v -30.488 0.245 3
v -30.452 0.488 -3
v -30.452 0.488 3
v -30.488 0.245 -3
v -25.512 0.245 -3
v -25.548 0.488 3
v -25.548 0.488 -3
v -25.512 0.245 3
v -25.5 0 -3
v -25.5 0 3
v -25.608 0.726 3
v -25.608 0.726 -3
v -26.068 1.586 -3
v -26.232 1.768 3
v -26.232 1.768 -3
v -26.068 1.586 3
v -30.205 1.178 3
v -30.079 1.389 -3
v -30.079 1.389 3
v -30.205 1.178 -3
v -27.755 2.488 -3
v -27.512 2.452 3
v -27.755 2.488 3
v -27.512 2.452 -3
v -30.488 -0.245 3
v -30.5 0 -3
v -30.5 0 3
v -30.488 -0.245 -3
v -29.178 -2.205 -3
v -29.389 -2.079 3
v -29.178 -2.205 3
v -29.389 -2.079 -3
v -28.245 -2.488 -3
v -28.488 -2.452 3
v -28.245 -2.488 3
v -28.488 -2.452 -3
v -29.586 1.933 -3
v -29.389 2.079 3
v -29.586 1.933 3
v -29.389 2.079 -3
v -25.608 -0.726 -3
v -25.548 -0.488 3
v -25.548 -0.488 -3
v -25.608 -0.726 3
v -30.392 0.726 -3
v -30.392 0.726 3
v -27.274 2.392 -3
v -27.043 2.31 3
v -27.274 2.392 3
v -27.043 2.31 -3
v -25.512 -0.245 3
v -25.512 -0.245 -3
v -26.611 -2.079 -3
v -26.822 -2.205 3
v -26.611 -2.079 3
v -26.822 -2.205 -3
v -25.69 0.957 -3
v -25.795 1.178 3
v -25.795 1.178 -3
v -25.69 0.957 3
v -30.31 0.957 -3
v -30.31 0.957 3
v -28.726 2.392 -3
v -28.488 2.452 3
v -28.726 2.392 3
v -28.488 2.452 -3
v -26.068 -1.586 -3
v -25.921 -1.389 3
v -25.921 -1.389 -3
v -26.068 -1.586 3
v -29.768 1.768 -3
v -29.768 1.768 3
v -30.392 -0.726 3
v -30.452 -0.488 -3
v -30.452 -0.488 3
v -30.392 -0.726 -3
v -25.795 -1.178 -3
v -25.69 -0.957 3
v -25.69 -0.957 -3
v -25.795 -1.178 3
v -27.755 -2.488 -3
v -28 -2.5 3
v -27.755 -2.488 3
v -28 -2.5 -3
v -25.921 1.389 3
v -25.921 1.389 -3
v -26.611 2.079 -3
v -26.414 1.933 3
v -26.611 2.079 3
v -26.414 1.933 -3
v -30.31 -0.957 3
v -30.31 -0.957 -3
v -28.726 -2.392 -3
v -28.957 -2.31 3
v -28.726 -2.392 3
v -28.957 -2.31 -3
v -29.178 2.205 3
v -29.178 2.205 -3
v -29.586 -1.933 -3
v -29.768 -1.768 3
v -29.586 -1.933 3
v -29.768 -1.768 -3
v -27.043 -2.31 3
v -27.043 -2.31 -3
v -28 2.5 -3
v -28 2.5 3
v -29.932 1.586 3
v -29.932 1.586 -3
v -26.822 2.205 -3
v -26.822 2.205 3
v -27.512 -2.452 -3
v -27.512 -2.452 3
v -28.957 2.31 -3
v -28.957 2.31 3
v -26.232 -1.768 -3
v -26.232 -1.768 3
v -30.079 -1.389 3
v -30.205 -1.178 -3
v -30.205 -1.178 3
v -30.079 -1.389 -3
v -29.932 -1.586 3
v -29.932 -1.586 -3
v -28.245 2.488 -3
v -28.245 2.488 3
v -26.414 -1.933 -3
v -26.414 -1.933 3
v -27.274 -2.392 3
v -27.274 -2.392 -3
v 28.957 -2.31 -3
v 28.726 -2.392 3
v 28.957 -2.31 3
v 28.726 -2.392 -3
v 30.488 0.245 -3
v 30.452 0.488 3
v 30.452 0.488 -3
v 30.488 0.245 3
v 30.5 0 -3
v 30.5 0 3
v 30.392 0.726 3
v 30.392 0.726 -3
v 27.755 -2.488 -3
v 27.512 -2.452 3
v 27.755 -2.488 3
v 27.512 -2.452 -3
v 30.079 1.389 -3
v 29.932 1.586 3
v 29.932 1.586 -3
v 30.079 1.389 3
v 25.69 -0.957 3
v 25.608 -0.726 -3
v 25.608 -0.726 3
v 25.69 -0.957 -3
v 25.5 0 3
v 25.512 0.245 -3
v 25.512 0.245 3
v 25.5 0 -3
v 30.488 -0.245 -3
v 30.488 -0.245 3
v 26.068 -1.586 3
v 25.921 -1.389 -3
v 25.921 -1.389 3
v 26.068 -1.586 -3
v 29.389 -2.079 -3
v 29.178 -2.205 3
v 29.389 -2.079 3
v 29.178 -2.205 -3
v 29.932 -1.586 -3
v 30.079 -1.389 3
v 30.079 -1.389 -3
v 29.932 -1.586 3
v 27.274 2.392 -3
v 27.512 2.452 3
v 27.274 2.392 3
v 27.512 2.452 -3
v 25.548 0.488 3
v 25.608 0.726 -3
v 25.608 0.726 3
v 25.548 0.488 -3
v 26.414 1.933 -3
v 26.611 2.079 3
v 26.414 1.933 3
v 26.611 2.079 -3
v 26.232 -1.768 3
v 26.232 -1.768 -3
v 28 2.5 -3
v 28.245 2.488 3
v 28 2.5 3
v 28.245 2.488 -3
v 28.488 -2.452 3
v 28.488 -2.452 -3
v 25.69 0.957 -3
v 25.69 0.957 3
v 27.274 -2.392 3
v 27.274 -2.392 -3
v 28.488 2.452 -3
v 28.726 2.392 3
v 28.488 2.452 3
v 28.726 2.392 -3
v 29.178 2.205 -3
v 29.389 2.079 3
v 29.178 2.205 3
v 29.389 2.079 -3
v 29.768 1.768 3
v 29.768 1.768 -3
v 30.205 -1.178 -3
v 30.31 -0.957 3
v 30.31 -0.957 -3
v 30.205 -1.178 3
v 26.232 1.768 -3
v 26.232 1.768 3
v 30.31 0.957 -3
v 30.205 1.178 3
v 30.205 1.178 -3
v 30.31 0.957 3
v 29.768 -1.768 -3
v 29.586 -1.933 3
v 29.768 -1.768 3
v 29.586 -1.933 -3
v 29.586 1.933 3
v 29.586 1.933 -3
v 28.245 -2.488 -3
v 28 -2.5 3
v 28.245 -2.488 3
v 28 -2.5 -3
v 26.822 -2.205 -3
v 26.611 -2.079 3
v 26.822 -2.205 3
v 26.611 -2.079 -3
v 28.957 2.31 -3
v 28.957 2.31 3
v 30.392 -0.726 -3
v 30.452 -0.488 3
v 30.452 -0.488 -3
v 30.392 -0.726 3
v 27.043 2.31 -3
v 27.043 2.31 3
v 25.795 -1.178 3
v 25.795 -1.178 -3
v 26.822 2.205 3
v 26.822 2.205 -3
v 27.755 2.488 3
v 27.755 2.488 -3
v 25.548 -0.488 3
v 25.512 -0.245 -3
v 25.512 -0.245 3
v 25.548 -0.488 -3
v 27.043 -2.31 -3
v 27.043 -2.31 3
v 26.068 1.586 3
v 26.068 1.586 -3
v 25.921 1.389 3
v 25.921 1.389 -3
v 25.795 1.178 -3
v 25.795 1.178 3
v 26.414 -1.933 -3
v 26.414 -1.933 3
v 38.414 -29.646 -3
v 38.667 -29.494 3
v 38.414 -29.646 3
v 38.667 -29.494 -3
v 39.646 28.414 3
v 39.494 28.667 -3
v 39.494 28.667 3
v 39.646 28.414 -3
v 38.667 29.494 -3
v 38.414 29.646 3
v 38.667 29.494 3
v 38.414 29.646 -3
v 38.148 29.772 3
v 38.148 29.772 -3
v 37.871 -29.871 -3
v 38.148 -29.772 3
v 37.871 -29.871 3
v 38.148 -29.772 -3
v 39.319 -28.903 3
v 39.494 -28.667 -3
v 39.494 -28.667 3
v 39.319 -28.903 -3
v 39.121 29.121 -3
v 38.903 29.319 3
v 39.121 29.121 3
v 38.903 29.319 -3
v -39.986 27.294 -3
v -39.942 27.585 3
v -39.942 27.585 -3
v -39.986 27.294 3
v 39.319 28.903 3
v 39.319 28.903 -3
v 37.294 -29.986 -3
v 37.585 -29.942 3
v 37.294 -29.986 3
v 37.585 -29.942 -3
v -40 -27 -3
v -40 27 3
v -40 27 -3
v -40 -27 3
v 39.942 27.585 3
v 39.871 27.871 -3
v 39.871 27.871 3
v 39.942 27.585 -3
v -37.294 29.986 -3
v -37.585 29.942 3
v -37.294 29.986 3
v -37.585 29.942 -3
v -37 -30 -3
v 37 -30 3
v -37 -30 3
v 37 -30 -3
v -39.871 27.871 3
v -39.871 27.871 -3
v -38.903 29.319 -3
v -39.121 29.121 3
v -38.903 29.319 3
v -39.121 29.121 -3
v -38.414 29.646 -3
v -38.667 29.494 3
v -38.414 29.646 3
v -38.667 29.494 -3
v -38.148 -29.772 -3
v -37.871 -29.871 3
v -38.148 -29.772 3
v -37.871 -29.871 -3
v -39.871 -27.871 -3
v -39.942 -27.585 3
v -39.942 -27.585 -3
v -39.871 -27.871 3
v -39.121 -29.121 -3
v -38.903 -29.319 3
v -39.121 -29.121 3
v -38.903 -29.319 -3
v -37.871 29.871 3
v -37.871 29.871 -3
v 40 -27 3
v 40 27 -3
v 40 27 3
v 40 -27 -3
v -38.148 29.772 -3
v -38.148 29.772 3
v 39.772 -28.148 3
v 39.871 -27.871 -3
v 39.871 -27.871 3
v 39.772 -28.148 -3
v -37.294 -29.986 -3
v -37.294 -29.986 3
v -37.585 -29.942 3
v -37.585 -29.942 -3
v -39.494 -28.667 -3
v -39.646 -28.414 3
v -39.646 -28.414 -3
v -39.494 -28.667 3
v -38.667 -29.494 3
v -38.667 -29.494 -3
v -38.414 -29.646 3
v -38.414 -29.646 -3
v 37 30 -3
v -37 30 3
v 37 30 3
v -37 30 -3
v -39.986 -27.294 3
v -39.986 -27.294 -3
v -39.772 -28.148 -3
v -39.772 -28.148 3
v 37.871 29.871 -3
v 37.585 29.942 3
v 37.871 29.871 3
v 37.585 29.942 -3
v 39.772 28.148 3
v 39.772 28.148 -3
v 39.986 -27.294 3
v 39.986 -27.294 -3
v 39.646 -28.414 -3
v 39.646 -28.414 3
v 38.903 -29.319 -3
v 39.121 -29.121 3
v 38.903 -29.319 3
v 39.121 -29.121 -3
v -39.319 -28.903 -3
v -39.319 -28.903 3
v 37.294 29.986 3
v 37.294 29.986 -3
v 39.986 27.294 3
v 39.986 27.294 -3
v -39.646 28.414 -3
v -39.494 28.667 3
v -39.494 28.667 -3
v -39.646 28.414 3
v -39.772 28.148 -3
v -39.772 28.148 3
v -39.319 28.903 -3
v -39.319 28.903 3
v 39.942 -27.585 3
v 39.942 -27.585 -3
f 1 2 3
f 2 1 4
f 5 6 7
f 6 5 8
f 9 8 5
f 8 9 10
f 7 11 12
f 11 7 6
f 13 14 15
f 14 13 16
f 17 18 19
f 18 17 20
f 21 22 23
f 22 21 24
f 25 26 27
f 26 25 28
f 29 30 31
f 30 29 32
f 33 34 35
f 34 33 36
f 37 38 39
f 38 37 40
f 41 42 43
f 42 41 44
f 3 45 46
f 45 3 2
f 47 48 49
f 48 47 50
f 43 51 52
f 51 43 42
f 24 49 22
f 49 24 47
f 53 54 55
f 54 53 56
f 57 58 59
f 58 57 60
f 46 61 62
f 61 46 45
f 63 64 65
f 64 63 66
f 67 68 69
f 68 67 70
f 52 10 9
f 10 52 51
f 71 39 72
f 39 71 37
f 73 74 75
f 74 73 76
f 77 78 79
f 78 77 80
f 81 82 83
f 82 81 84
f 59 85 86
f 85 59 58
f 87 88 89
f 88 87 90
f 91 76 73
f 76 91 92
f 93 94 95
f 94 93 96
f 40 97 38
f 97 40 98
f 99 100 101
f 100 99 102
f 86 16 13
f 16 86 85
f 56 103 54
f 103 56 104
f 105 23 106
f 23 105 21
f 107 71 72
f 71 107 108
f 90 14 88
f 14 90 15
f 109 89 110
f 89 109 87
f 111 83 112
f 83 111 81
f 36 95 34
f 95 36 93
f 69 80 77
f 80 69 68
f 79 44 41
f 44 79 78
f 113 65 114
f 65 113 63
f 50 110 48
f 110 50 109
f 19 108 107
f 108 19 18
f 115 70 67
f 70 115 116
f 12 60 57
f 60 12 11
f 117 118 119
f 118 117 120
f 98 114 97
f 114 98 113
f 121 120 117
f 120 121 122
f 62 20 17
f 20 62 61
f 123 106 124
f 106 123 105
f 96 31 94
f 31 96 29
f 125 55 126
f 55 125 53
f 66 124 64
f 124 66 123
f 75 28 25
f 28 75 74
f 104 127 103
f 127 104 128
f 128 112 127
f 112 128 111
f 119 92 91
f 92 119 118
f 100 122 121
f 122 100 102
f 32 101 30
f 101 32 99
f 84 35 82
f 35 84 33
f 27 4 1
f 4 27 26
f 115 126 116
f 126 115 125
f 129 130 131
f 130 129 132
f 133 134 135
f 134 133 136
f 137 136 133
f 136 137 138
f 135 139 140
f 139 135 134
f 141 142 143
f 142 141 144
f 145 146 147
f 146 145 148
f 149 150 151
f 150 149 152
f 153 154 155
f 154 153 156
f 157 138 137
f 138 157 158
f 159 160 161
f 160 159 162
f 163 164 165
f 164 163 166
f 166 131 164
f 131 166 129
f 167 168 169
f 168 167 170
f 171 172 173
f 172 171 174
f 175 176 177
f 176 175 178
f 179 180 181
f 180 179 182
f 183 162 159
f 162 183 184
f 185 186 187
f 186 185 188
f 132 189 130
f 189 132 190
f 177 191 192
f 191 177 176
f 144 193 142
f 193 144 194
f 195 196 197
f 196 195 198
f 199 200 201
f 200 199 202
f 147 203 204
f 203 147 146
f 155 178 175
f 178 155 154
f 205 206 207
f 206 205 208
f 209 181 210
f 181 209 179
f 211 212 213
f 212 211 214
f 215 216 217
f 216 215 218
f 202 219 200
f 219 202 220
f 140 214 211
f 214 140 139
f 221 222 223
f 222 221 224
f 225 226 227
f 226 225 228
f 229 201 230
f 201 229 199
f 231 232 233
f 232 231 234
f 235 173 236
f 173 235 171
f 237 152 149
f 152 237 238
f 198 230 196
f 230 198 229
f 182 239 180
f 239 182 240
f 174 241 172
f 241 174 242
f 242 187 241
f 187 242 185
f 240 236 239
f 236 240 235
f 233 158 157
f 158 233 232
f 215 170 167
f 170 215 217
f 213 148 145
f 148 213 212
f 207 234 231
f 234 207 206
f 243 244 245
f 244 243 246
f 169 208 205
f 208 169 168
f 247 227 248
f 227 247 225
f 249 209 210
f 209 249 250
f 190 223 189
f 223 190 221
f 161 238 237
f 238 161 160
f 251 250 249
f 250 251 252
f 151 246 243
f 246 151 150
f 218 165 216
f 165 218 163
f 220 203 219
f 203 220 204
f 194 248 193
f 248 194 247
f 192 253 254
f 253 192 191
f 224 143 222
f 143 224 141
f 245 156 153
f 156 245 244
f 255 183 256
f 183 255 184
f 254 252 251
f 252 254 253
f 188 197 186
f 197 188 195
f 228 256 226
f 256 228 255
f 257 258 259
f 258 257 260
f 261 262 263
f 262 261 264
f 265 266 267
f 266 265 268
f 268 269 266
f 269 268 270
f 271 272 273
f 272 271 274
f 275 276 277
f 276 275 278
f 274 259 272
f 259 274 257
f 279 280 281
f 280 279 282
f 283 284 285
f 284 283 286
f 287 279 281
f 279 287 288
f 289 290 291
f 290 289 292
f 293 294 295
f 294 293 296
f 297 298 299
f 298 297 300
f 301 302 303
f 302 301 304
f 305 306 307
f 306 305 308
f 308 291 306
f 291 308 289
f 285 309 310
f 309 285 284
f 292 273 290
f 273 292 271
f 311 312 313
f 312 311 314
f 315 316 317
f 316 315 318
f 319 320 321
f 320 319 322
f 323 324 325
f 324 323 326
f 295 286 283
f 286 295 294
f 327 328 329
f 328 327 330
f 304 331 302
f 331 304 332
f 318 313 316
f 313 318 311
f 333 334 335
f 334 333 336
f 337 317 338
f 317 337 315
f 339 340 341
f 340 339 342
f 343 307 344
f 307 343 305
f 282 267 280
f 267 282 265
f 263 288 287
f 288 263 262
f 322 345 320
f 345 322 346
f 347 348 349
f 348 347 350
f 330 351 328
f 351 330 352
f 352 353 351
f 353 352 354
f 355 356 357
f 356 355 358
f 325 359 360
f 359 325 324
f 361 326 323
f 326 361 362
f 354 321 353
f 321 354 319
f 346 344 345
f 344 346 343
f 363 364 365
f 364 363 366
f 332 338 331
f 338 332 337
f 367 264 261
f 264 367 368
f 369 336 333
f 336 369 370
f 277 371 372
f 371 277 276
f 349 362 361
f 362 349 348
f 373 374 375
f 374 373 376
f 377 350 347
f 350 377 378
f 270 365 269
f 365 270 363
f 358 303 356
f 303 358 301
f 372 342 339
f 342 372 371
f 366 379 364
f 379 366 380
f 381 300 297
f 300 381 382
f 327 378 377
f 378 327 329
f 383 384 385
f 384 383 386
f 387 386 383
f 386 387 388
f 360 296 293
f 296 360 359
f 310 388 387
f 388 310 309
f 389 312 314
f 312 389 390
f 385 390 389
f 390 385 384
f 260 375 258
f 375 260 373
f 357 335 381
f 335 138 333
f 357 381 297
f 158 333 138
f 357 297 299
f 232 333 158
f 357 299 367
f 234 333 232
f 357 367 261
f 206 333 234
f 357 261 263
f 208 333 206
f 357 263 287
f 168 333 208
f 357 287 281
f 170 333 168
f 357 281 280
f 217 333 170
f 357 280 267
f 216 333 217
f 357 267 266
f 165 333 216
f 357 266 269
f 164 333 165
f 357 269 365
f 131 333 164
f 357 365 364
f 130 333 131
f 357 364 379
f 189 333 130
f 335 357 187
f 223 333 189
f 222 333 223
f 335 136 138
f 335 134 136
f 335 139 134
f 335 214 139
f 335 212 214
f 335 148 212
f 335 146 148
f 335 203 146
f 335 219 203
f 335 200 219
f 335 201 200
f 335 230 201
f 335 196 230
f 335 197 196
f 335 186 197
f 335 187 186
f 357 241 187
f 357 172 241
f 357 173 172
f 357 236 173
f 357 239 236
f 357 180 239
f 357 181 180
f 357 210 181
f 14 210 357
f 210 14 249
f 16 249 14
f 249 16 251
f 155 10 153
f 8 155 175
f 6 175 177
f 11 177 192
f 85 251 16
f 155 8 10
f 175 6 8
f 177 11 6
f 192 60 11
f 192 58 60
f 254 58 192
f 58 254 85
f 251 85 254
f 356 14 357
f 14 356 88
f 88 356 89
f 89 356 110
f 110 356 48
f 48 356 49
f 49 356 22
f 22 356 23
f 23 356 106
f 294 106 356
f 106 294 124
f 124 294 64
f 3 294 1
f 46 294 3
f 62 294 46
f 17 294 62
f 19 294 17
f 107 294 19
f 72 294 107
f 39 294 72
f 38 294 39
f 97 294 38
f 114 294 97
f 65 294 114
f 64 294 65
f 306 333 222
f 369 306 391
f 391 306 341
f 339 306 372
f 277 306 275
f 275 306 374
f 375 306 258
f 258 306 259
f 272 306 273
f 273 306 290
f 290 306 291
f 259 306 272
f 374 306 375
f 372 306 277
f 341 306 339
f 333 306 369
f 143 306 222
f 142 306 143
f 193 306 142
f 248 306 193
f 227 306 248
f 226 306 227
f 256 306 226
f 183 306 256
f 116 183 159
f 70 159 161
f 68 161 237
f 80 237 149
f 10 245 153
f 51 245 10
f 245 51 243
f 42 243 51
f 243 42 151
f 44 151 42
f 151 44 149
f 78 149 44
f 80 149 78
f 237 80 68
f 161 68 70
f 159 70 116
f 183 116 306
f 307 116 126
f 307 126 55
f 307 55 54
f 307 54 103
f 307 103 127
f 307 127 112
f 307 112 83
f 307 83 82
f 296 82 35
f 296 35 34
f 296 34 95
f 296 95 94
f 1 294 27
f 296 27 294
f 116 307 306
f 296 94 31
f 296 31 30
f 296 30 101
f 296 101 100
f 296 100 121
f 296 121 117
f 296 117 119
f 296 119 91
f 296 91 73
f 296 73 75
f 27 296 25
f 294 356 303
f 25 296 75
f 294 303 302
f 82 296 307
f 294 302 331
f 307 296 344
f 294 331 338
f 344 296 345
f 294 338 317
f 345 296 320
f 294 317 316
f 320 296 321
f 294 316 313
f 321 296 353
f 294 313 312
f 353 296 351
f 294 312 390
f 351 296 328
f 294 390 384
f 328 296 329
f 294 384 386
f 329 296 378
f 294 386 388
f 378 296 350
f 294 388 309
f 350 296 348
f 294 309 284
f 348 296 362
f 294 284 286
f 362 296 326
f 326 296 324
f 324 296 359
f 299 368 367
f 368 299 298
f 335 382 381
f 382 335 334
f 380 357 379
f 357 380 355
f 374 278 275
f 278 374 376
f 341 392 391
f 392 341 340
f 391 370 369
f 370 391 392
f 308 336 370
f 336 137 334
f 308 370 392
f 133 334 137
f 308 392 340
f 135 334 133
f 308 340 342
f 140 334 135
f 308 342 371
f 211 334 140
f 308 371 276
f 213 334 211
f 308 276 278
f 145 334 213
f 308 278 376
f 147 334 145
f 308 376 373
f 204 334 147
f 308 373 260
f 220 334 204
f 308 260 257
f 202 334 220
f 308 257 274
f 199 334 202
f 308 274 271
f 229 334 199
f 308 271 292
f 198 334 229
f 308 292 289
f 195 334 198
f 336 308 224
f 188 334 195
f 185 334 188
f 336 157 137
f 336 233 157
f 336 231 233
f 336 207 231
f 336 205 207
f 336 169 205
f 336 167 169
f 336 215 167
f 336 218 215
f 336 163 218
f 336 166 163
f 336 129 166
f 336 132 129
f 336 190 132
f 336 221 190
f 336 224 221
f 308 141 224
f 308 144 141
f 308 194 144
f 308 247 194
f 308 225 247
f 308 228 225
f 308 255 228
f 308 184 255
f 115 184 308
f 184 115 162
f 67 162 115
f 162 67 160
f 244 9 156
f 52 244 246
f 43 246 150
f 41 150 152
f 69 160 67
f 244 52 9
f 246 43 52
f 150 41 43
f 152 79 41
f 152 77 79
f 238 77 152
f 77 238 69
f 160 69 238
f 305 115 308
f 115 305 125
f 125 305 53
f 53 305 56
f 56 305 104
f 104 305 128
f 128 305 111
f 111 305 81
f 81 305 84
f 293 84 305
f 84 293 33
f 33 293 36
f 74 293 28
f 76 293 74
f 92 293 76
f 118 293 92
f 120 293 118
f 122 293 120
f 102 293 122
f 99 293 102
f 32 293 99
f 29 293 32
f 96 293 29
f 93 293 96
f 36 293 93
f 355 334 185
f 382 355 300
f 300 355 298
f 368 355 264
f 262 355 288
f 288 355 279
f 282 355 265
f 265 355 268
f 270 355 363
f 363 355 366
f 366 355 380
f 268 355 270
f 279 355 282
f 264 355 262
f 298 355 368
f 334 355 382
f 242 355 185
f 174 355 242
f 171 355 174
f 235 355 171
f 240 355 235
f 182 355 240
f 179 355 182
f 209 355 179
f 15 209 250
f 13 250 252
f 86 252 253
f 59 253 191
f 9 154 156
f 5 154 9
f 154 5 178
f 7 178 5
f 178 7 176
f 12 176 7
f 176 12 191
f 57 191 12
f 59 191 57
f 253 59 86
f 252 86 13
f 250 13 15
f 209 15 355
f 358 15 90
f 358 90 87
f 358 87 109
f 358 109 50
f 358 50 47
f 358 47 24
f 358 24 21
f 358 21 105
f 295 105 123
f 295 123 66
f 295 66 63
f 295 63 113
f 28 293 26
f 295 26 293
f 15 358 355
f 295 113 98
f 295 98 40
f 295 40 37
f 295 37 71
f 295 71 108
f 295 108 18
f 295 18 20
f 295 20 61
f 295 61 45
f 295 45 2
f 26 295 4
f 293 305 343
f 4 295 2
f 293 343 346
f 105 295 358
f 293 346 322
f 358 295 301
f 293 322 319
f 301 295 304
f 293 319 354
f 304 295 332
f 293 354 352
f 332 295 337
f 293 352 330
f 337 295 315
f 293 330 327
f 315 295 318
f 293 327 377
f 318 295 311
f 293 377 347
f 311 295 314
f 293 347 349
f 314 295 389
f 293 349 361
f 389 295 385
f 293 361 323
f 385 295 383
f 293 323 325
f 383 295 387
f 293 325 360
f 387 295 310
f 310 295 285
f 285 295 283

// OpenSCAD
// Кронштейн — пример на языке OpenSCAD.
//
// Идея та же, что в DSL ФОРМЫ: текстовый файл описывает тело, а программа
// считает геометрию. Но есть два отличия, которые видно прямо здесь:
//
// 1. OpenSCAD — настоящий язык программирования: переменные, модули,
//    функции, циклы, условия, списки. Здесь `for` рисует два отверстия,
//    а `offset(3) offset(-3)` скругляет углы (классический приём: сначала
//    расширить контур, потом сжать — острые углы превращаются в радиусы).
// 2. OpenSCAD ничего не сообщает о результате: ни объёма, ни массы, ни
//    толщины стенок. Чтобы узнать объём, модель надо отрендерить в STL и
//    посчитать сторонним инструментом (это делает compare.py в CI).

w = 80;          // ширина, мм
d = 60;          // глубина, мм
t = 6;           // толщина, мм
hole_d = 5;      // диаметр отверстий, мм
hole_inset = 12; // отступ отверстий от края, мм
corner = 3;      // радиус скругления углов
$fn = 64;        // число сегментов окружностей

module plate(w = 80, d = 60, t = 6, corner = 3) {
    // пластина со скруглёнными углами, центр — в начале координат
    linear_extrude(height = t)
        offset(r = corner) offset(r = -corner)
            square([w, d], center = true);
}

module bracket(w = 80, d = 60, t = 6, hole_d = 5, hole_inset = 12, corner = 3) {
    difference() {
        plate(w, d, t, corner);
        for (x = [-1, 1])
            translate([x * (w / 2 - hole_inset), 0, -1])
                cylinder(h = t + 2, d = hole_d);
    }
}

// Ставим деталь так, чтобы её центр совпал с началом координат:
// с этим же положением сравнивается вариант на DSL ФОРМЫ.
translate([0, 0, -t / 2]) bracket(w, d, t, hole_d, hole_inset, corner);

// Проверка, что параметры действительно параметры: раскомментируйте строку
// ниже и получите деталь в два раза толще — без правки геометрии.
// translate([0, 0, -t]) bracket(w, d, t * 2, hole_d, hole_inset, corner);
